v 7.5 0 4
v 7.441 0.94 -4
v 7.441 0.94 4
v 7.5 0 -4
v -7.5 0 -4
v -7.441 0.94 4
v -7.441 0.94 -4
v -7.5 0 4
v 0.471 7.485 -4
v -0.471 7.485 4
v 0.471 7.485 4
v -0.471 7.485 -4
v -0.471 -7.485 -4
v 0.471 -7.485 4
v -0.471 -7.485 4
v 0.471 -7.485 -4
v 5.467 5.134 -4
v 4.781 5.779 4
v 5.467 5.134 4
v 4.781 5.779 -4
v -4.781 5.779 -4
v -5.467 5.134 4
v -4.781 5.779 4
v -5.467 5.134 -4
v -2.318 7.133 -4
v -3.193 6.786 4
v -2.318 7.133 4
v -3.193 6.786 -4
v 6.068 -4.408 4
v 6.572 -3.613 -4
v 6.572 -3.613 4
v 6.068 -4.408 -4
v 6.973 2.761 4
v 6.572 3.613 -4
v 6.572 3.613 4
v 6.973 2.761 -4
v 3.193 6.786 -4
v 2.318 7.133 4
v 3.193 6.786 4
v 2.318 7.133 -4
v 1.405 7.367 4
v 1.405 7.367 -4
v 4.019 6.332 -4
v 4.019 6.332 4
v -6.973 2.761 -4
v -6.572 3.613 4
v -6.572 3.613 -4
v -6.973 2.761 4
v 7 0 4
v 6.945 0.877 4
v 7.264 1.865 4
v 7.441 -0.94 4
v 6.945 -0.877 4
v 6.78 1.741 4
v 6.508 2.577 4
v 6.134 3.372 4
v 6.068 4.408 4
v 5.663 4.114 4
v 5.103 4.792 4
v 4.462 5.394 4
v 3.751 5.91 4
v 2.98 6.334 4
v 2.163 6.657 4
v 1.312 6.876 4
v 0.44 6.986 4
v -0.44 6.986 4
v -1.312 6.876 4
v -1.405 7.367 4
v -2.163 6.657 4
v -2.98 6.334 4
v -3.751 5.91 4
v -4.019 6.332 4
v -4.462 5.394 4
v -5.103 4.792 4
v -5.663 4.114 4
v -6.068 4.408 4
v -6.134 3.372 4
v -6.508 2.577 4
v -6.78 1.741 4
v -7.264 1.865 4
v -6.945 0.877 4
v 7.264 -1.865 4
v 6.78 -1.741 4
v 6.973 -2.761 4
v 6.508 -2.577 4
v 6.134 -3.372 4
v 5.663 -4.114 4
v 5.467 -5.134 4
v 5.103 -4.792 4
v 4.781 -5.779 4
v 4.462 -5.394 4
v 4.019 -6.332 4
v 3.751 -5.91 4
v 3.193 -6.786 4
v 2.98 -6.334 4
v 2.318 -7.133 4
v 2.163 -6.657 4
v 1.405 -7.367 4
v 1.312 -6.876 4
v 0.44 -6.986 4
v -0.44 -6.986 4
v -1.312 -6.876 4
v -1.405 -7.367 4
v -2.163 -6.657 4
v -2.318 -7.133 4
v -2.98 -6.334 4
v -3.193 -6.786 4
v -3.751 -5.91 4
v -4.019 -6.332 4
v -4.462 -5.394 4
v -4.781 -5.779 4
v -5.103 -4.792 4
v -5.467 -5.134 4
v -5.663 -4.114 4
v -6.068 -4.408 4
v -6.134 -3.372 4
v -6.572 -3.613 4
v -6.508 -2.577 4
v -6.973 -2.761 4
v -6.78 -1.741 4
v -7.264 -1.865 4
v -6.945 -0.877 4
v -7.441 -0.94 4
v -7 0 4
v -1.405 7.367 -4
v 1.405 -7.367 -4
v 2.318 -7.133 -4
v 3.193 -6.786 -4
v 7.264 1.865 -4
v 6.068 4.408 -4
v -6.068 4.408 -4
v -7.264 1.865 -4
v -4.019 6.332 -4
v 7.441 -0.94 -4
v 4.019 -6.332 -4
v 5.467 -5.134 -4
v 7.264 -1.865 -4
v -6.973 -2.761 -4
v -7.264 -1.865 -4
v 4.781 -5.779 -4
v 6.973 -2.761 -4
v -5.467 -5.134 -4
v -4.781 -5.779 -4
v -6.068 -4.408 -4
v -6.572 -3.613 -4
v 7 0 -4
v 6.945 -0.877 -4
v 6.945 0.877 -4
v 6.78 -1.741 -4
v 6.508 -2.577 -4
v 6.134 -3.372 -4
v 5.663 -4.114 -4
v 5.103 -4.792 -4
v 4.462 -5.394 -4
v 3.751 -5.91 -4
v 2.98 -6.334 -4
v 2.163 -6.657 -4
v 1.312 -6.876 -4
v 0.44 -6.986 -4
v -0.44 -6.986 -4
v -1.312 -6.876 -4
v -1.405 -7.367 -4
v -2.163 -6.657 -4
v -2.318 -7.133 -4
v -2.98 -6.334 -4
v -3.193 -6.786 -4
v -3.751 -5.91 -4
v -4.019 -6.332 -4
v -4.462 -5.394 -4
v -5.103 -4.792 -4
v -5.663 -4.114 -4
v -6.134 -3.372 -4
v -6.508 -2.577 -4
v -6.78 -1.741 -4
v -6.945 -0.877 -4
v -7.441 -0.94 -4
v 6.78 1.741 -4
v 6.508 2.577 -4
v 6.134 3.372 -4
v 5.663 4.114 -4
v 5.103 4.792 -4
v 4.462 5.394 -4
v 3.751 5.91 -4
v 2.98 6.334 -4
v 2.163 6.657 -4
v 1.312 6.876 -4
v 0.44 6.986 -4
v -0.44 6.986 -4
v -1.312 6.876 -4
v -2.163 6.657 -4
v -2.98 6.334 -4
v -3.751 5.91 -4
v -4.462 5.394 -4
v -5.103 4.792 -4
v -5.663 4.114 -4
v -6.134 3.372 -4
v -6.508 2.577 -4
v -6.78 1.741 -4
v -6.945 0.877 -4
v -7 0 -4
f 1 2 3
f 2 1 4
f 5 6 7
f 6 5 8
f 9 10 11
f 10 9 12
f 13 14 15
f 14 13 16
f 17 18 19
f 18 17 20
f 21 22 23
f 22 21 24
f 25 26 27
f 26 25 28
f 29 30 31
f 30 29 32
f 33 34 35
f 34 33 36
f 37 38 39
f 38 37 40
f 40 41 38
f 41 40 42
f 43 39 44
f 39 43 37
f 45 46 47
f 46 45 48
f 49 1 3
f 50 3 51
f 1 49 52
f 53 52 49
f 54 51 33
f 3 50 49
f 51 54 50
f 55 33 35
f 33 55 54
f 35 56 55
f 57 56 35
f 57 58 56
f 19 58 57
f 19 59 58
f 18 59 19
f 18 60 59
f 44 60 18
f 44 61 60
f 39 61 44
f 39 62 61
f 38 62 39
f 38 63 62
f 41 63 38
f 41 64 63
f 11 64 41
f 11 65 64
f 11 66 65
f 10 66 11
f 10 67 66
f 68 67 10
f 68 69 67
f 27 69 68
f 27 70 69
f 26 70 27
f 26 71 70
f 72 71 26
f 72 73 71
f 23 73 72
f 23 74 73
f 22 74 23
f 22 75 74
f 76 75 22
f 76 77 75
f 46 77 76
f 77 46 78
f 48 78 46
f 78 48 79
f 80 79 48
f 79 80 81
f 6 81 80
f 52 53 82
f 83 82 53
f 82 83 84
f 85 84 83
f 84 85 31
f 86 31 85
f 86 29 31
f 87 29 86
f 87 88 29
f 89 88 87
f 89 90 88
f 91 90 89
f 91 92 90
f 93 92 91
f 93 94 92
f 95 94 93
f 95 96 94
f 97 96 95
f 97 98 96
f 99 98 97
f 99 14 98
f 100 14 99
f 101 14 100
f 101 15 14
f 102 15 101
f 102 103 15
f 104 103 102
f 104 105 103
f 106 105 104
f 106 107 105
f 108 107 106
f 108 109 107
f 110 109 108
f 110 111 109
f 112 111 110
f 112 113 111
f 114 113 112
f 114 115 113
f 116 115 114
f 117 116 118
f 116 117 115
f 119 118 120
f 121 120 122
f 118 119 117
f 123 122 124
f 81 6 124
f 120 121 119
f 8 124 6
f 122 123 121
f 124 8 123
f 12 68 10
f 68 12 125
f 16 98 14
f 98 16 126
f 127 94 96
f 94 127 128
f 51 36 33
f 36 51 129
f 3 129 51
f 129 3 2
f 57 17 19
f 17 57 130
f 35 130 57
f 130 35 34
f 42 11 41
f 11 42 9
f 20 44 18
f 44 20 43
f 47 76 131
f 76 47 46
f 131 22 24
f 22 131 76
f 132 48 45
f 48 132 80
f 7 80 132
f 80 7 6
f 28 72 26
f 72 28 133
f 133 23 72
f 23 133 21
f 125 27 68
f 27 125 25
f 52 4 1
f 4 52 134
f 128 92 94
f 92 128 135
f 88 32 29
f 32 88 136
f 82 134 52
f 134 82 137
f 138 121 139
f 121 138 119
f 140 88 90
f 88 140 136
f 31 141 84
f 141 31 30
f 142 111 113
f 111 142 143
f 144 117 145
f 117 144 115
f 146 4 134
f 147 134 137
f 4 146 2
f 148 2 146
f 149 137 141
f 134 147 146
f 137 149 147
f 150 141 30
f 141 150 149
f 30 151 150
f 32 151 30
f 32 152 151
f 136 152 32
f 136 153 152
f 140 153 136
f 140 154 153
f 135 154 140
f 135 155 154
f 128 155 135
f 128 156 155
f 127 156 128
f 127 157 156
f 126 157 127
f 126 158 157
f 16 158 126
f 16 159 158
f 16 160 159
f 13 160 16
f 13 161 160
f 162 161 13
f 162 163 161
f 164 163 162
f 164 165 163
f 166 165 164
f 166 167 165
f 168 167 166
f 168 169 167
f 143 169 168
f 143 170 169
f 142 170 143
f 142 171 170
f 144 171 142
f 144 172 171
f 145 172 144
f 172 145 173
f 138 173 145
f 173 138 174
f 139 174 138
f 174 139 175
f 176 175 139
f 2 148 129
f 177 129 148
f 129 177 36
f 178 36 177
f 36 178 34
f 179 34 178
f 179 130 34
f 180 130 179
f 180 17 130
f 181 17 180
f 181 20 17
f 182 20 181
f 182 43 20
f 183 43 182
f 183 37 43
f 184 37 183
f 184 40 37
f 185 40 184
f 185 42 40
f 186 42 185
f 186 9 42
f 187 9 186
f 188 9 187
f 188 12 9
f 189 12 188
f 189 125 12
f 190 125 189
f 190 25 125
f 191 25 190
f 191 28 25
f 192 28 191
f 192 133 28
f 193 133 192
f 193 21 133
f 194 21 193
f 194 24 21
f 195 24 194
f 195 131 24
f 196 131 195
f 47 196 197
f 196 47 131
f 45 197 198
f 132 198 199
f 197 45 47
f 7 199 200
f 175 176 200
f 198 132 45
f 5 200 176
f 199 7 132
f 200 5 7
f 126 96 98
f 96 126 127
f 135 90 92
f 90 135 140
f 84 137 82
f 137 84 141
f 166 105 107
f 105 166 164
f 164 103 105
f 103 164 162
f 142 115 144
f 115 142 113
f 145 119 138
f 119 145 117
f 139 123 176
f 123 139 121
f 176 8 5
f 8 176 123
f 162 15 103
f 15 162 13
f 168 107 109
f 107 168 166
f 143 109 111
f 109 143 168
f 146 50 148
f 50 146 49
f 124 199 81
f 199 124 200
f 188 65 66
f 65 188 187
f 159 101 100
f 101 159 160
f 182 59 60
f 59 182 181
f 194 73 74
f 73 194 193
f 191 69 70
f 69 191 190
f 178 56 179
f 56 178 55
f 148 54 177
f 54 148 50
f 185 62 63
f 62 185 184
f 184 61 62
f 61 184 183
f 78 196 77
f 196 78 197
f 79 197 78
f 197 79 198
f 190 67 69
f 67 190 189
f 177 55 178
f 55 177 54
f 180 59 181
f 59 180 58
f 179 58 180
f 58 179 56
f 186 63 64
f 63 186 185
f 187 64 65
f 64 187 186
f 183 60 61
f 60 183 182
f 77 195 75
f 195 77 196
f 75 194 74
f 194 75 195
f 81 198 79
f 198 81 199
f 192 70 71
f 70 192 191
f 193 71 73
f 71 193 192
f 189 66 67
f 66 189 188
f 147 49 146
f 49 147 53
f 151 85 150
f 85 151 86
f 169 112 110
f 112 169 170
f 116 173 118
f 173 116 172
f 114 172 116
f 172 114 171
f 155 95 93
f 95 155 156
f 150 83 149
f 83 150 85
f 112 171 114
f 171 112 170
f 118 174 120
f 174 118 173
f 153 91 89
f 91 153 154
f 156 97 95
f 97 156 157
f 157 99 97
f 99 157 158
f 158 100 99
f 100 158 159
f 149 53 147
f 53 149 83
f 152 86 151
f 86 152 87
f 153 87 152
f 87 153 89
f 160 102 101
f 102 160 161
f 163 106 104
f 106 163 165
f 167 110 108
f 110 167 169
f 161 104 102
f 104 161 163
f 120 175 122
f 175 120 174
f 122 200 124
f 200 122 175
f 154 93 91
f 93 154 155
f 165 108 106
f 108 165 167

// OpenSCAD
$fn = 50;


difference() {
	union() {
		translate(v = [0, 0, -4.0000000000]) {
			cylinder(h = 8, r = 7.5000000000);
		}
	}
	union() {
		translate(v = [0, 0, -100.0000000000]) {
			cylinder(h = 200, r = 7);
		}
	}
}
